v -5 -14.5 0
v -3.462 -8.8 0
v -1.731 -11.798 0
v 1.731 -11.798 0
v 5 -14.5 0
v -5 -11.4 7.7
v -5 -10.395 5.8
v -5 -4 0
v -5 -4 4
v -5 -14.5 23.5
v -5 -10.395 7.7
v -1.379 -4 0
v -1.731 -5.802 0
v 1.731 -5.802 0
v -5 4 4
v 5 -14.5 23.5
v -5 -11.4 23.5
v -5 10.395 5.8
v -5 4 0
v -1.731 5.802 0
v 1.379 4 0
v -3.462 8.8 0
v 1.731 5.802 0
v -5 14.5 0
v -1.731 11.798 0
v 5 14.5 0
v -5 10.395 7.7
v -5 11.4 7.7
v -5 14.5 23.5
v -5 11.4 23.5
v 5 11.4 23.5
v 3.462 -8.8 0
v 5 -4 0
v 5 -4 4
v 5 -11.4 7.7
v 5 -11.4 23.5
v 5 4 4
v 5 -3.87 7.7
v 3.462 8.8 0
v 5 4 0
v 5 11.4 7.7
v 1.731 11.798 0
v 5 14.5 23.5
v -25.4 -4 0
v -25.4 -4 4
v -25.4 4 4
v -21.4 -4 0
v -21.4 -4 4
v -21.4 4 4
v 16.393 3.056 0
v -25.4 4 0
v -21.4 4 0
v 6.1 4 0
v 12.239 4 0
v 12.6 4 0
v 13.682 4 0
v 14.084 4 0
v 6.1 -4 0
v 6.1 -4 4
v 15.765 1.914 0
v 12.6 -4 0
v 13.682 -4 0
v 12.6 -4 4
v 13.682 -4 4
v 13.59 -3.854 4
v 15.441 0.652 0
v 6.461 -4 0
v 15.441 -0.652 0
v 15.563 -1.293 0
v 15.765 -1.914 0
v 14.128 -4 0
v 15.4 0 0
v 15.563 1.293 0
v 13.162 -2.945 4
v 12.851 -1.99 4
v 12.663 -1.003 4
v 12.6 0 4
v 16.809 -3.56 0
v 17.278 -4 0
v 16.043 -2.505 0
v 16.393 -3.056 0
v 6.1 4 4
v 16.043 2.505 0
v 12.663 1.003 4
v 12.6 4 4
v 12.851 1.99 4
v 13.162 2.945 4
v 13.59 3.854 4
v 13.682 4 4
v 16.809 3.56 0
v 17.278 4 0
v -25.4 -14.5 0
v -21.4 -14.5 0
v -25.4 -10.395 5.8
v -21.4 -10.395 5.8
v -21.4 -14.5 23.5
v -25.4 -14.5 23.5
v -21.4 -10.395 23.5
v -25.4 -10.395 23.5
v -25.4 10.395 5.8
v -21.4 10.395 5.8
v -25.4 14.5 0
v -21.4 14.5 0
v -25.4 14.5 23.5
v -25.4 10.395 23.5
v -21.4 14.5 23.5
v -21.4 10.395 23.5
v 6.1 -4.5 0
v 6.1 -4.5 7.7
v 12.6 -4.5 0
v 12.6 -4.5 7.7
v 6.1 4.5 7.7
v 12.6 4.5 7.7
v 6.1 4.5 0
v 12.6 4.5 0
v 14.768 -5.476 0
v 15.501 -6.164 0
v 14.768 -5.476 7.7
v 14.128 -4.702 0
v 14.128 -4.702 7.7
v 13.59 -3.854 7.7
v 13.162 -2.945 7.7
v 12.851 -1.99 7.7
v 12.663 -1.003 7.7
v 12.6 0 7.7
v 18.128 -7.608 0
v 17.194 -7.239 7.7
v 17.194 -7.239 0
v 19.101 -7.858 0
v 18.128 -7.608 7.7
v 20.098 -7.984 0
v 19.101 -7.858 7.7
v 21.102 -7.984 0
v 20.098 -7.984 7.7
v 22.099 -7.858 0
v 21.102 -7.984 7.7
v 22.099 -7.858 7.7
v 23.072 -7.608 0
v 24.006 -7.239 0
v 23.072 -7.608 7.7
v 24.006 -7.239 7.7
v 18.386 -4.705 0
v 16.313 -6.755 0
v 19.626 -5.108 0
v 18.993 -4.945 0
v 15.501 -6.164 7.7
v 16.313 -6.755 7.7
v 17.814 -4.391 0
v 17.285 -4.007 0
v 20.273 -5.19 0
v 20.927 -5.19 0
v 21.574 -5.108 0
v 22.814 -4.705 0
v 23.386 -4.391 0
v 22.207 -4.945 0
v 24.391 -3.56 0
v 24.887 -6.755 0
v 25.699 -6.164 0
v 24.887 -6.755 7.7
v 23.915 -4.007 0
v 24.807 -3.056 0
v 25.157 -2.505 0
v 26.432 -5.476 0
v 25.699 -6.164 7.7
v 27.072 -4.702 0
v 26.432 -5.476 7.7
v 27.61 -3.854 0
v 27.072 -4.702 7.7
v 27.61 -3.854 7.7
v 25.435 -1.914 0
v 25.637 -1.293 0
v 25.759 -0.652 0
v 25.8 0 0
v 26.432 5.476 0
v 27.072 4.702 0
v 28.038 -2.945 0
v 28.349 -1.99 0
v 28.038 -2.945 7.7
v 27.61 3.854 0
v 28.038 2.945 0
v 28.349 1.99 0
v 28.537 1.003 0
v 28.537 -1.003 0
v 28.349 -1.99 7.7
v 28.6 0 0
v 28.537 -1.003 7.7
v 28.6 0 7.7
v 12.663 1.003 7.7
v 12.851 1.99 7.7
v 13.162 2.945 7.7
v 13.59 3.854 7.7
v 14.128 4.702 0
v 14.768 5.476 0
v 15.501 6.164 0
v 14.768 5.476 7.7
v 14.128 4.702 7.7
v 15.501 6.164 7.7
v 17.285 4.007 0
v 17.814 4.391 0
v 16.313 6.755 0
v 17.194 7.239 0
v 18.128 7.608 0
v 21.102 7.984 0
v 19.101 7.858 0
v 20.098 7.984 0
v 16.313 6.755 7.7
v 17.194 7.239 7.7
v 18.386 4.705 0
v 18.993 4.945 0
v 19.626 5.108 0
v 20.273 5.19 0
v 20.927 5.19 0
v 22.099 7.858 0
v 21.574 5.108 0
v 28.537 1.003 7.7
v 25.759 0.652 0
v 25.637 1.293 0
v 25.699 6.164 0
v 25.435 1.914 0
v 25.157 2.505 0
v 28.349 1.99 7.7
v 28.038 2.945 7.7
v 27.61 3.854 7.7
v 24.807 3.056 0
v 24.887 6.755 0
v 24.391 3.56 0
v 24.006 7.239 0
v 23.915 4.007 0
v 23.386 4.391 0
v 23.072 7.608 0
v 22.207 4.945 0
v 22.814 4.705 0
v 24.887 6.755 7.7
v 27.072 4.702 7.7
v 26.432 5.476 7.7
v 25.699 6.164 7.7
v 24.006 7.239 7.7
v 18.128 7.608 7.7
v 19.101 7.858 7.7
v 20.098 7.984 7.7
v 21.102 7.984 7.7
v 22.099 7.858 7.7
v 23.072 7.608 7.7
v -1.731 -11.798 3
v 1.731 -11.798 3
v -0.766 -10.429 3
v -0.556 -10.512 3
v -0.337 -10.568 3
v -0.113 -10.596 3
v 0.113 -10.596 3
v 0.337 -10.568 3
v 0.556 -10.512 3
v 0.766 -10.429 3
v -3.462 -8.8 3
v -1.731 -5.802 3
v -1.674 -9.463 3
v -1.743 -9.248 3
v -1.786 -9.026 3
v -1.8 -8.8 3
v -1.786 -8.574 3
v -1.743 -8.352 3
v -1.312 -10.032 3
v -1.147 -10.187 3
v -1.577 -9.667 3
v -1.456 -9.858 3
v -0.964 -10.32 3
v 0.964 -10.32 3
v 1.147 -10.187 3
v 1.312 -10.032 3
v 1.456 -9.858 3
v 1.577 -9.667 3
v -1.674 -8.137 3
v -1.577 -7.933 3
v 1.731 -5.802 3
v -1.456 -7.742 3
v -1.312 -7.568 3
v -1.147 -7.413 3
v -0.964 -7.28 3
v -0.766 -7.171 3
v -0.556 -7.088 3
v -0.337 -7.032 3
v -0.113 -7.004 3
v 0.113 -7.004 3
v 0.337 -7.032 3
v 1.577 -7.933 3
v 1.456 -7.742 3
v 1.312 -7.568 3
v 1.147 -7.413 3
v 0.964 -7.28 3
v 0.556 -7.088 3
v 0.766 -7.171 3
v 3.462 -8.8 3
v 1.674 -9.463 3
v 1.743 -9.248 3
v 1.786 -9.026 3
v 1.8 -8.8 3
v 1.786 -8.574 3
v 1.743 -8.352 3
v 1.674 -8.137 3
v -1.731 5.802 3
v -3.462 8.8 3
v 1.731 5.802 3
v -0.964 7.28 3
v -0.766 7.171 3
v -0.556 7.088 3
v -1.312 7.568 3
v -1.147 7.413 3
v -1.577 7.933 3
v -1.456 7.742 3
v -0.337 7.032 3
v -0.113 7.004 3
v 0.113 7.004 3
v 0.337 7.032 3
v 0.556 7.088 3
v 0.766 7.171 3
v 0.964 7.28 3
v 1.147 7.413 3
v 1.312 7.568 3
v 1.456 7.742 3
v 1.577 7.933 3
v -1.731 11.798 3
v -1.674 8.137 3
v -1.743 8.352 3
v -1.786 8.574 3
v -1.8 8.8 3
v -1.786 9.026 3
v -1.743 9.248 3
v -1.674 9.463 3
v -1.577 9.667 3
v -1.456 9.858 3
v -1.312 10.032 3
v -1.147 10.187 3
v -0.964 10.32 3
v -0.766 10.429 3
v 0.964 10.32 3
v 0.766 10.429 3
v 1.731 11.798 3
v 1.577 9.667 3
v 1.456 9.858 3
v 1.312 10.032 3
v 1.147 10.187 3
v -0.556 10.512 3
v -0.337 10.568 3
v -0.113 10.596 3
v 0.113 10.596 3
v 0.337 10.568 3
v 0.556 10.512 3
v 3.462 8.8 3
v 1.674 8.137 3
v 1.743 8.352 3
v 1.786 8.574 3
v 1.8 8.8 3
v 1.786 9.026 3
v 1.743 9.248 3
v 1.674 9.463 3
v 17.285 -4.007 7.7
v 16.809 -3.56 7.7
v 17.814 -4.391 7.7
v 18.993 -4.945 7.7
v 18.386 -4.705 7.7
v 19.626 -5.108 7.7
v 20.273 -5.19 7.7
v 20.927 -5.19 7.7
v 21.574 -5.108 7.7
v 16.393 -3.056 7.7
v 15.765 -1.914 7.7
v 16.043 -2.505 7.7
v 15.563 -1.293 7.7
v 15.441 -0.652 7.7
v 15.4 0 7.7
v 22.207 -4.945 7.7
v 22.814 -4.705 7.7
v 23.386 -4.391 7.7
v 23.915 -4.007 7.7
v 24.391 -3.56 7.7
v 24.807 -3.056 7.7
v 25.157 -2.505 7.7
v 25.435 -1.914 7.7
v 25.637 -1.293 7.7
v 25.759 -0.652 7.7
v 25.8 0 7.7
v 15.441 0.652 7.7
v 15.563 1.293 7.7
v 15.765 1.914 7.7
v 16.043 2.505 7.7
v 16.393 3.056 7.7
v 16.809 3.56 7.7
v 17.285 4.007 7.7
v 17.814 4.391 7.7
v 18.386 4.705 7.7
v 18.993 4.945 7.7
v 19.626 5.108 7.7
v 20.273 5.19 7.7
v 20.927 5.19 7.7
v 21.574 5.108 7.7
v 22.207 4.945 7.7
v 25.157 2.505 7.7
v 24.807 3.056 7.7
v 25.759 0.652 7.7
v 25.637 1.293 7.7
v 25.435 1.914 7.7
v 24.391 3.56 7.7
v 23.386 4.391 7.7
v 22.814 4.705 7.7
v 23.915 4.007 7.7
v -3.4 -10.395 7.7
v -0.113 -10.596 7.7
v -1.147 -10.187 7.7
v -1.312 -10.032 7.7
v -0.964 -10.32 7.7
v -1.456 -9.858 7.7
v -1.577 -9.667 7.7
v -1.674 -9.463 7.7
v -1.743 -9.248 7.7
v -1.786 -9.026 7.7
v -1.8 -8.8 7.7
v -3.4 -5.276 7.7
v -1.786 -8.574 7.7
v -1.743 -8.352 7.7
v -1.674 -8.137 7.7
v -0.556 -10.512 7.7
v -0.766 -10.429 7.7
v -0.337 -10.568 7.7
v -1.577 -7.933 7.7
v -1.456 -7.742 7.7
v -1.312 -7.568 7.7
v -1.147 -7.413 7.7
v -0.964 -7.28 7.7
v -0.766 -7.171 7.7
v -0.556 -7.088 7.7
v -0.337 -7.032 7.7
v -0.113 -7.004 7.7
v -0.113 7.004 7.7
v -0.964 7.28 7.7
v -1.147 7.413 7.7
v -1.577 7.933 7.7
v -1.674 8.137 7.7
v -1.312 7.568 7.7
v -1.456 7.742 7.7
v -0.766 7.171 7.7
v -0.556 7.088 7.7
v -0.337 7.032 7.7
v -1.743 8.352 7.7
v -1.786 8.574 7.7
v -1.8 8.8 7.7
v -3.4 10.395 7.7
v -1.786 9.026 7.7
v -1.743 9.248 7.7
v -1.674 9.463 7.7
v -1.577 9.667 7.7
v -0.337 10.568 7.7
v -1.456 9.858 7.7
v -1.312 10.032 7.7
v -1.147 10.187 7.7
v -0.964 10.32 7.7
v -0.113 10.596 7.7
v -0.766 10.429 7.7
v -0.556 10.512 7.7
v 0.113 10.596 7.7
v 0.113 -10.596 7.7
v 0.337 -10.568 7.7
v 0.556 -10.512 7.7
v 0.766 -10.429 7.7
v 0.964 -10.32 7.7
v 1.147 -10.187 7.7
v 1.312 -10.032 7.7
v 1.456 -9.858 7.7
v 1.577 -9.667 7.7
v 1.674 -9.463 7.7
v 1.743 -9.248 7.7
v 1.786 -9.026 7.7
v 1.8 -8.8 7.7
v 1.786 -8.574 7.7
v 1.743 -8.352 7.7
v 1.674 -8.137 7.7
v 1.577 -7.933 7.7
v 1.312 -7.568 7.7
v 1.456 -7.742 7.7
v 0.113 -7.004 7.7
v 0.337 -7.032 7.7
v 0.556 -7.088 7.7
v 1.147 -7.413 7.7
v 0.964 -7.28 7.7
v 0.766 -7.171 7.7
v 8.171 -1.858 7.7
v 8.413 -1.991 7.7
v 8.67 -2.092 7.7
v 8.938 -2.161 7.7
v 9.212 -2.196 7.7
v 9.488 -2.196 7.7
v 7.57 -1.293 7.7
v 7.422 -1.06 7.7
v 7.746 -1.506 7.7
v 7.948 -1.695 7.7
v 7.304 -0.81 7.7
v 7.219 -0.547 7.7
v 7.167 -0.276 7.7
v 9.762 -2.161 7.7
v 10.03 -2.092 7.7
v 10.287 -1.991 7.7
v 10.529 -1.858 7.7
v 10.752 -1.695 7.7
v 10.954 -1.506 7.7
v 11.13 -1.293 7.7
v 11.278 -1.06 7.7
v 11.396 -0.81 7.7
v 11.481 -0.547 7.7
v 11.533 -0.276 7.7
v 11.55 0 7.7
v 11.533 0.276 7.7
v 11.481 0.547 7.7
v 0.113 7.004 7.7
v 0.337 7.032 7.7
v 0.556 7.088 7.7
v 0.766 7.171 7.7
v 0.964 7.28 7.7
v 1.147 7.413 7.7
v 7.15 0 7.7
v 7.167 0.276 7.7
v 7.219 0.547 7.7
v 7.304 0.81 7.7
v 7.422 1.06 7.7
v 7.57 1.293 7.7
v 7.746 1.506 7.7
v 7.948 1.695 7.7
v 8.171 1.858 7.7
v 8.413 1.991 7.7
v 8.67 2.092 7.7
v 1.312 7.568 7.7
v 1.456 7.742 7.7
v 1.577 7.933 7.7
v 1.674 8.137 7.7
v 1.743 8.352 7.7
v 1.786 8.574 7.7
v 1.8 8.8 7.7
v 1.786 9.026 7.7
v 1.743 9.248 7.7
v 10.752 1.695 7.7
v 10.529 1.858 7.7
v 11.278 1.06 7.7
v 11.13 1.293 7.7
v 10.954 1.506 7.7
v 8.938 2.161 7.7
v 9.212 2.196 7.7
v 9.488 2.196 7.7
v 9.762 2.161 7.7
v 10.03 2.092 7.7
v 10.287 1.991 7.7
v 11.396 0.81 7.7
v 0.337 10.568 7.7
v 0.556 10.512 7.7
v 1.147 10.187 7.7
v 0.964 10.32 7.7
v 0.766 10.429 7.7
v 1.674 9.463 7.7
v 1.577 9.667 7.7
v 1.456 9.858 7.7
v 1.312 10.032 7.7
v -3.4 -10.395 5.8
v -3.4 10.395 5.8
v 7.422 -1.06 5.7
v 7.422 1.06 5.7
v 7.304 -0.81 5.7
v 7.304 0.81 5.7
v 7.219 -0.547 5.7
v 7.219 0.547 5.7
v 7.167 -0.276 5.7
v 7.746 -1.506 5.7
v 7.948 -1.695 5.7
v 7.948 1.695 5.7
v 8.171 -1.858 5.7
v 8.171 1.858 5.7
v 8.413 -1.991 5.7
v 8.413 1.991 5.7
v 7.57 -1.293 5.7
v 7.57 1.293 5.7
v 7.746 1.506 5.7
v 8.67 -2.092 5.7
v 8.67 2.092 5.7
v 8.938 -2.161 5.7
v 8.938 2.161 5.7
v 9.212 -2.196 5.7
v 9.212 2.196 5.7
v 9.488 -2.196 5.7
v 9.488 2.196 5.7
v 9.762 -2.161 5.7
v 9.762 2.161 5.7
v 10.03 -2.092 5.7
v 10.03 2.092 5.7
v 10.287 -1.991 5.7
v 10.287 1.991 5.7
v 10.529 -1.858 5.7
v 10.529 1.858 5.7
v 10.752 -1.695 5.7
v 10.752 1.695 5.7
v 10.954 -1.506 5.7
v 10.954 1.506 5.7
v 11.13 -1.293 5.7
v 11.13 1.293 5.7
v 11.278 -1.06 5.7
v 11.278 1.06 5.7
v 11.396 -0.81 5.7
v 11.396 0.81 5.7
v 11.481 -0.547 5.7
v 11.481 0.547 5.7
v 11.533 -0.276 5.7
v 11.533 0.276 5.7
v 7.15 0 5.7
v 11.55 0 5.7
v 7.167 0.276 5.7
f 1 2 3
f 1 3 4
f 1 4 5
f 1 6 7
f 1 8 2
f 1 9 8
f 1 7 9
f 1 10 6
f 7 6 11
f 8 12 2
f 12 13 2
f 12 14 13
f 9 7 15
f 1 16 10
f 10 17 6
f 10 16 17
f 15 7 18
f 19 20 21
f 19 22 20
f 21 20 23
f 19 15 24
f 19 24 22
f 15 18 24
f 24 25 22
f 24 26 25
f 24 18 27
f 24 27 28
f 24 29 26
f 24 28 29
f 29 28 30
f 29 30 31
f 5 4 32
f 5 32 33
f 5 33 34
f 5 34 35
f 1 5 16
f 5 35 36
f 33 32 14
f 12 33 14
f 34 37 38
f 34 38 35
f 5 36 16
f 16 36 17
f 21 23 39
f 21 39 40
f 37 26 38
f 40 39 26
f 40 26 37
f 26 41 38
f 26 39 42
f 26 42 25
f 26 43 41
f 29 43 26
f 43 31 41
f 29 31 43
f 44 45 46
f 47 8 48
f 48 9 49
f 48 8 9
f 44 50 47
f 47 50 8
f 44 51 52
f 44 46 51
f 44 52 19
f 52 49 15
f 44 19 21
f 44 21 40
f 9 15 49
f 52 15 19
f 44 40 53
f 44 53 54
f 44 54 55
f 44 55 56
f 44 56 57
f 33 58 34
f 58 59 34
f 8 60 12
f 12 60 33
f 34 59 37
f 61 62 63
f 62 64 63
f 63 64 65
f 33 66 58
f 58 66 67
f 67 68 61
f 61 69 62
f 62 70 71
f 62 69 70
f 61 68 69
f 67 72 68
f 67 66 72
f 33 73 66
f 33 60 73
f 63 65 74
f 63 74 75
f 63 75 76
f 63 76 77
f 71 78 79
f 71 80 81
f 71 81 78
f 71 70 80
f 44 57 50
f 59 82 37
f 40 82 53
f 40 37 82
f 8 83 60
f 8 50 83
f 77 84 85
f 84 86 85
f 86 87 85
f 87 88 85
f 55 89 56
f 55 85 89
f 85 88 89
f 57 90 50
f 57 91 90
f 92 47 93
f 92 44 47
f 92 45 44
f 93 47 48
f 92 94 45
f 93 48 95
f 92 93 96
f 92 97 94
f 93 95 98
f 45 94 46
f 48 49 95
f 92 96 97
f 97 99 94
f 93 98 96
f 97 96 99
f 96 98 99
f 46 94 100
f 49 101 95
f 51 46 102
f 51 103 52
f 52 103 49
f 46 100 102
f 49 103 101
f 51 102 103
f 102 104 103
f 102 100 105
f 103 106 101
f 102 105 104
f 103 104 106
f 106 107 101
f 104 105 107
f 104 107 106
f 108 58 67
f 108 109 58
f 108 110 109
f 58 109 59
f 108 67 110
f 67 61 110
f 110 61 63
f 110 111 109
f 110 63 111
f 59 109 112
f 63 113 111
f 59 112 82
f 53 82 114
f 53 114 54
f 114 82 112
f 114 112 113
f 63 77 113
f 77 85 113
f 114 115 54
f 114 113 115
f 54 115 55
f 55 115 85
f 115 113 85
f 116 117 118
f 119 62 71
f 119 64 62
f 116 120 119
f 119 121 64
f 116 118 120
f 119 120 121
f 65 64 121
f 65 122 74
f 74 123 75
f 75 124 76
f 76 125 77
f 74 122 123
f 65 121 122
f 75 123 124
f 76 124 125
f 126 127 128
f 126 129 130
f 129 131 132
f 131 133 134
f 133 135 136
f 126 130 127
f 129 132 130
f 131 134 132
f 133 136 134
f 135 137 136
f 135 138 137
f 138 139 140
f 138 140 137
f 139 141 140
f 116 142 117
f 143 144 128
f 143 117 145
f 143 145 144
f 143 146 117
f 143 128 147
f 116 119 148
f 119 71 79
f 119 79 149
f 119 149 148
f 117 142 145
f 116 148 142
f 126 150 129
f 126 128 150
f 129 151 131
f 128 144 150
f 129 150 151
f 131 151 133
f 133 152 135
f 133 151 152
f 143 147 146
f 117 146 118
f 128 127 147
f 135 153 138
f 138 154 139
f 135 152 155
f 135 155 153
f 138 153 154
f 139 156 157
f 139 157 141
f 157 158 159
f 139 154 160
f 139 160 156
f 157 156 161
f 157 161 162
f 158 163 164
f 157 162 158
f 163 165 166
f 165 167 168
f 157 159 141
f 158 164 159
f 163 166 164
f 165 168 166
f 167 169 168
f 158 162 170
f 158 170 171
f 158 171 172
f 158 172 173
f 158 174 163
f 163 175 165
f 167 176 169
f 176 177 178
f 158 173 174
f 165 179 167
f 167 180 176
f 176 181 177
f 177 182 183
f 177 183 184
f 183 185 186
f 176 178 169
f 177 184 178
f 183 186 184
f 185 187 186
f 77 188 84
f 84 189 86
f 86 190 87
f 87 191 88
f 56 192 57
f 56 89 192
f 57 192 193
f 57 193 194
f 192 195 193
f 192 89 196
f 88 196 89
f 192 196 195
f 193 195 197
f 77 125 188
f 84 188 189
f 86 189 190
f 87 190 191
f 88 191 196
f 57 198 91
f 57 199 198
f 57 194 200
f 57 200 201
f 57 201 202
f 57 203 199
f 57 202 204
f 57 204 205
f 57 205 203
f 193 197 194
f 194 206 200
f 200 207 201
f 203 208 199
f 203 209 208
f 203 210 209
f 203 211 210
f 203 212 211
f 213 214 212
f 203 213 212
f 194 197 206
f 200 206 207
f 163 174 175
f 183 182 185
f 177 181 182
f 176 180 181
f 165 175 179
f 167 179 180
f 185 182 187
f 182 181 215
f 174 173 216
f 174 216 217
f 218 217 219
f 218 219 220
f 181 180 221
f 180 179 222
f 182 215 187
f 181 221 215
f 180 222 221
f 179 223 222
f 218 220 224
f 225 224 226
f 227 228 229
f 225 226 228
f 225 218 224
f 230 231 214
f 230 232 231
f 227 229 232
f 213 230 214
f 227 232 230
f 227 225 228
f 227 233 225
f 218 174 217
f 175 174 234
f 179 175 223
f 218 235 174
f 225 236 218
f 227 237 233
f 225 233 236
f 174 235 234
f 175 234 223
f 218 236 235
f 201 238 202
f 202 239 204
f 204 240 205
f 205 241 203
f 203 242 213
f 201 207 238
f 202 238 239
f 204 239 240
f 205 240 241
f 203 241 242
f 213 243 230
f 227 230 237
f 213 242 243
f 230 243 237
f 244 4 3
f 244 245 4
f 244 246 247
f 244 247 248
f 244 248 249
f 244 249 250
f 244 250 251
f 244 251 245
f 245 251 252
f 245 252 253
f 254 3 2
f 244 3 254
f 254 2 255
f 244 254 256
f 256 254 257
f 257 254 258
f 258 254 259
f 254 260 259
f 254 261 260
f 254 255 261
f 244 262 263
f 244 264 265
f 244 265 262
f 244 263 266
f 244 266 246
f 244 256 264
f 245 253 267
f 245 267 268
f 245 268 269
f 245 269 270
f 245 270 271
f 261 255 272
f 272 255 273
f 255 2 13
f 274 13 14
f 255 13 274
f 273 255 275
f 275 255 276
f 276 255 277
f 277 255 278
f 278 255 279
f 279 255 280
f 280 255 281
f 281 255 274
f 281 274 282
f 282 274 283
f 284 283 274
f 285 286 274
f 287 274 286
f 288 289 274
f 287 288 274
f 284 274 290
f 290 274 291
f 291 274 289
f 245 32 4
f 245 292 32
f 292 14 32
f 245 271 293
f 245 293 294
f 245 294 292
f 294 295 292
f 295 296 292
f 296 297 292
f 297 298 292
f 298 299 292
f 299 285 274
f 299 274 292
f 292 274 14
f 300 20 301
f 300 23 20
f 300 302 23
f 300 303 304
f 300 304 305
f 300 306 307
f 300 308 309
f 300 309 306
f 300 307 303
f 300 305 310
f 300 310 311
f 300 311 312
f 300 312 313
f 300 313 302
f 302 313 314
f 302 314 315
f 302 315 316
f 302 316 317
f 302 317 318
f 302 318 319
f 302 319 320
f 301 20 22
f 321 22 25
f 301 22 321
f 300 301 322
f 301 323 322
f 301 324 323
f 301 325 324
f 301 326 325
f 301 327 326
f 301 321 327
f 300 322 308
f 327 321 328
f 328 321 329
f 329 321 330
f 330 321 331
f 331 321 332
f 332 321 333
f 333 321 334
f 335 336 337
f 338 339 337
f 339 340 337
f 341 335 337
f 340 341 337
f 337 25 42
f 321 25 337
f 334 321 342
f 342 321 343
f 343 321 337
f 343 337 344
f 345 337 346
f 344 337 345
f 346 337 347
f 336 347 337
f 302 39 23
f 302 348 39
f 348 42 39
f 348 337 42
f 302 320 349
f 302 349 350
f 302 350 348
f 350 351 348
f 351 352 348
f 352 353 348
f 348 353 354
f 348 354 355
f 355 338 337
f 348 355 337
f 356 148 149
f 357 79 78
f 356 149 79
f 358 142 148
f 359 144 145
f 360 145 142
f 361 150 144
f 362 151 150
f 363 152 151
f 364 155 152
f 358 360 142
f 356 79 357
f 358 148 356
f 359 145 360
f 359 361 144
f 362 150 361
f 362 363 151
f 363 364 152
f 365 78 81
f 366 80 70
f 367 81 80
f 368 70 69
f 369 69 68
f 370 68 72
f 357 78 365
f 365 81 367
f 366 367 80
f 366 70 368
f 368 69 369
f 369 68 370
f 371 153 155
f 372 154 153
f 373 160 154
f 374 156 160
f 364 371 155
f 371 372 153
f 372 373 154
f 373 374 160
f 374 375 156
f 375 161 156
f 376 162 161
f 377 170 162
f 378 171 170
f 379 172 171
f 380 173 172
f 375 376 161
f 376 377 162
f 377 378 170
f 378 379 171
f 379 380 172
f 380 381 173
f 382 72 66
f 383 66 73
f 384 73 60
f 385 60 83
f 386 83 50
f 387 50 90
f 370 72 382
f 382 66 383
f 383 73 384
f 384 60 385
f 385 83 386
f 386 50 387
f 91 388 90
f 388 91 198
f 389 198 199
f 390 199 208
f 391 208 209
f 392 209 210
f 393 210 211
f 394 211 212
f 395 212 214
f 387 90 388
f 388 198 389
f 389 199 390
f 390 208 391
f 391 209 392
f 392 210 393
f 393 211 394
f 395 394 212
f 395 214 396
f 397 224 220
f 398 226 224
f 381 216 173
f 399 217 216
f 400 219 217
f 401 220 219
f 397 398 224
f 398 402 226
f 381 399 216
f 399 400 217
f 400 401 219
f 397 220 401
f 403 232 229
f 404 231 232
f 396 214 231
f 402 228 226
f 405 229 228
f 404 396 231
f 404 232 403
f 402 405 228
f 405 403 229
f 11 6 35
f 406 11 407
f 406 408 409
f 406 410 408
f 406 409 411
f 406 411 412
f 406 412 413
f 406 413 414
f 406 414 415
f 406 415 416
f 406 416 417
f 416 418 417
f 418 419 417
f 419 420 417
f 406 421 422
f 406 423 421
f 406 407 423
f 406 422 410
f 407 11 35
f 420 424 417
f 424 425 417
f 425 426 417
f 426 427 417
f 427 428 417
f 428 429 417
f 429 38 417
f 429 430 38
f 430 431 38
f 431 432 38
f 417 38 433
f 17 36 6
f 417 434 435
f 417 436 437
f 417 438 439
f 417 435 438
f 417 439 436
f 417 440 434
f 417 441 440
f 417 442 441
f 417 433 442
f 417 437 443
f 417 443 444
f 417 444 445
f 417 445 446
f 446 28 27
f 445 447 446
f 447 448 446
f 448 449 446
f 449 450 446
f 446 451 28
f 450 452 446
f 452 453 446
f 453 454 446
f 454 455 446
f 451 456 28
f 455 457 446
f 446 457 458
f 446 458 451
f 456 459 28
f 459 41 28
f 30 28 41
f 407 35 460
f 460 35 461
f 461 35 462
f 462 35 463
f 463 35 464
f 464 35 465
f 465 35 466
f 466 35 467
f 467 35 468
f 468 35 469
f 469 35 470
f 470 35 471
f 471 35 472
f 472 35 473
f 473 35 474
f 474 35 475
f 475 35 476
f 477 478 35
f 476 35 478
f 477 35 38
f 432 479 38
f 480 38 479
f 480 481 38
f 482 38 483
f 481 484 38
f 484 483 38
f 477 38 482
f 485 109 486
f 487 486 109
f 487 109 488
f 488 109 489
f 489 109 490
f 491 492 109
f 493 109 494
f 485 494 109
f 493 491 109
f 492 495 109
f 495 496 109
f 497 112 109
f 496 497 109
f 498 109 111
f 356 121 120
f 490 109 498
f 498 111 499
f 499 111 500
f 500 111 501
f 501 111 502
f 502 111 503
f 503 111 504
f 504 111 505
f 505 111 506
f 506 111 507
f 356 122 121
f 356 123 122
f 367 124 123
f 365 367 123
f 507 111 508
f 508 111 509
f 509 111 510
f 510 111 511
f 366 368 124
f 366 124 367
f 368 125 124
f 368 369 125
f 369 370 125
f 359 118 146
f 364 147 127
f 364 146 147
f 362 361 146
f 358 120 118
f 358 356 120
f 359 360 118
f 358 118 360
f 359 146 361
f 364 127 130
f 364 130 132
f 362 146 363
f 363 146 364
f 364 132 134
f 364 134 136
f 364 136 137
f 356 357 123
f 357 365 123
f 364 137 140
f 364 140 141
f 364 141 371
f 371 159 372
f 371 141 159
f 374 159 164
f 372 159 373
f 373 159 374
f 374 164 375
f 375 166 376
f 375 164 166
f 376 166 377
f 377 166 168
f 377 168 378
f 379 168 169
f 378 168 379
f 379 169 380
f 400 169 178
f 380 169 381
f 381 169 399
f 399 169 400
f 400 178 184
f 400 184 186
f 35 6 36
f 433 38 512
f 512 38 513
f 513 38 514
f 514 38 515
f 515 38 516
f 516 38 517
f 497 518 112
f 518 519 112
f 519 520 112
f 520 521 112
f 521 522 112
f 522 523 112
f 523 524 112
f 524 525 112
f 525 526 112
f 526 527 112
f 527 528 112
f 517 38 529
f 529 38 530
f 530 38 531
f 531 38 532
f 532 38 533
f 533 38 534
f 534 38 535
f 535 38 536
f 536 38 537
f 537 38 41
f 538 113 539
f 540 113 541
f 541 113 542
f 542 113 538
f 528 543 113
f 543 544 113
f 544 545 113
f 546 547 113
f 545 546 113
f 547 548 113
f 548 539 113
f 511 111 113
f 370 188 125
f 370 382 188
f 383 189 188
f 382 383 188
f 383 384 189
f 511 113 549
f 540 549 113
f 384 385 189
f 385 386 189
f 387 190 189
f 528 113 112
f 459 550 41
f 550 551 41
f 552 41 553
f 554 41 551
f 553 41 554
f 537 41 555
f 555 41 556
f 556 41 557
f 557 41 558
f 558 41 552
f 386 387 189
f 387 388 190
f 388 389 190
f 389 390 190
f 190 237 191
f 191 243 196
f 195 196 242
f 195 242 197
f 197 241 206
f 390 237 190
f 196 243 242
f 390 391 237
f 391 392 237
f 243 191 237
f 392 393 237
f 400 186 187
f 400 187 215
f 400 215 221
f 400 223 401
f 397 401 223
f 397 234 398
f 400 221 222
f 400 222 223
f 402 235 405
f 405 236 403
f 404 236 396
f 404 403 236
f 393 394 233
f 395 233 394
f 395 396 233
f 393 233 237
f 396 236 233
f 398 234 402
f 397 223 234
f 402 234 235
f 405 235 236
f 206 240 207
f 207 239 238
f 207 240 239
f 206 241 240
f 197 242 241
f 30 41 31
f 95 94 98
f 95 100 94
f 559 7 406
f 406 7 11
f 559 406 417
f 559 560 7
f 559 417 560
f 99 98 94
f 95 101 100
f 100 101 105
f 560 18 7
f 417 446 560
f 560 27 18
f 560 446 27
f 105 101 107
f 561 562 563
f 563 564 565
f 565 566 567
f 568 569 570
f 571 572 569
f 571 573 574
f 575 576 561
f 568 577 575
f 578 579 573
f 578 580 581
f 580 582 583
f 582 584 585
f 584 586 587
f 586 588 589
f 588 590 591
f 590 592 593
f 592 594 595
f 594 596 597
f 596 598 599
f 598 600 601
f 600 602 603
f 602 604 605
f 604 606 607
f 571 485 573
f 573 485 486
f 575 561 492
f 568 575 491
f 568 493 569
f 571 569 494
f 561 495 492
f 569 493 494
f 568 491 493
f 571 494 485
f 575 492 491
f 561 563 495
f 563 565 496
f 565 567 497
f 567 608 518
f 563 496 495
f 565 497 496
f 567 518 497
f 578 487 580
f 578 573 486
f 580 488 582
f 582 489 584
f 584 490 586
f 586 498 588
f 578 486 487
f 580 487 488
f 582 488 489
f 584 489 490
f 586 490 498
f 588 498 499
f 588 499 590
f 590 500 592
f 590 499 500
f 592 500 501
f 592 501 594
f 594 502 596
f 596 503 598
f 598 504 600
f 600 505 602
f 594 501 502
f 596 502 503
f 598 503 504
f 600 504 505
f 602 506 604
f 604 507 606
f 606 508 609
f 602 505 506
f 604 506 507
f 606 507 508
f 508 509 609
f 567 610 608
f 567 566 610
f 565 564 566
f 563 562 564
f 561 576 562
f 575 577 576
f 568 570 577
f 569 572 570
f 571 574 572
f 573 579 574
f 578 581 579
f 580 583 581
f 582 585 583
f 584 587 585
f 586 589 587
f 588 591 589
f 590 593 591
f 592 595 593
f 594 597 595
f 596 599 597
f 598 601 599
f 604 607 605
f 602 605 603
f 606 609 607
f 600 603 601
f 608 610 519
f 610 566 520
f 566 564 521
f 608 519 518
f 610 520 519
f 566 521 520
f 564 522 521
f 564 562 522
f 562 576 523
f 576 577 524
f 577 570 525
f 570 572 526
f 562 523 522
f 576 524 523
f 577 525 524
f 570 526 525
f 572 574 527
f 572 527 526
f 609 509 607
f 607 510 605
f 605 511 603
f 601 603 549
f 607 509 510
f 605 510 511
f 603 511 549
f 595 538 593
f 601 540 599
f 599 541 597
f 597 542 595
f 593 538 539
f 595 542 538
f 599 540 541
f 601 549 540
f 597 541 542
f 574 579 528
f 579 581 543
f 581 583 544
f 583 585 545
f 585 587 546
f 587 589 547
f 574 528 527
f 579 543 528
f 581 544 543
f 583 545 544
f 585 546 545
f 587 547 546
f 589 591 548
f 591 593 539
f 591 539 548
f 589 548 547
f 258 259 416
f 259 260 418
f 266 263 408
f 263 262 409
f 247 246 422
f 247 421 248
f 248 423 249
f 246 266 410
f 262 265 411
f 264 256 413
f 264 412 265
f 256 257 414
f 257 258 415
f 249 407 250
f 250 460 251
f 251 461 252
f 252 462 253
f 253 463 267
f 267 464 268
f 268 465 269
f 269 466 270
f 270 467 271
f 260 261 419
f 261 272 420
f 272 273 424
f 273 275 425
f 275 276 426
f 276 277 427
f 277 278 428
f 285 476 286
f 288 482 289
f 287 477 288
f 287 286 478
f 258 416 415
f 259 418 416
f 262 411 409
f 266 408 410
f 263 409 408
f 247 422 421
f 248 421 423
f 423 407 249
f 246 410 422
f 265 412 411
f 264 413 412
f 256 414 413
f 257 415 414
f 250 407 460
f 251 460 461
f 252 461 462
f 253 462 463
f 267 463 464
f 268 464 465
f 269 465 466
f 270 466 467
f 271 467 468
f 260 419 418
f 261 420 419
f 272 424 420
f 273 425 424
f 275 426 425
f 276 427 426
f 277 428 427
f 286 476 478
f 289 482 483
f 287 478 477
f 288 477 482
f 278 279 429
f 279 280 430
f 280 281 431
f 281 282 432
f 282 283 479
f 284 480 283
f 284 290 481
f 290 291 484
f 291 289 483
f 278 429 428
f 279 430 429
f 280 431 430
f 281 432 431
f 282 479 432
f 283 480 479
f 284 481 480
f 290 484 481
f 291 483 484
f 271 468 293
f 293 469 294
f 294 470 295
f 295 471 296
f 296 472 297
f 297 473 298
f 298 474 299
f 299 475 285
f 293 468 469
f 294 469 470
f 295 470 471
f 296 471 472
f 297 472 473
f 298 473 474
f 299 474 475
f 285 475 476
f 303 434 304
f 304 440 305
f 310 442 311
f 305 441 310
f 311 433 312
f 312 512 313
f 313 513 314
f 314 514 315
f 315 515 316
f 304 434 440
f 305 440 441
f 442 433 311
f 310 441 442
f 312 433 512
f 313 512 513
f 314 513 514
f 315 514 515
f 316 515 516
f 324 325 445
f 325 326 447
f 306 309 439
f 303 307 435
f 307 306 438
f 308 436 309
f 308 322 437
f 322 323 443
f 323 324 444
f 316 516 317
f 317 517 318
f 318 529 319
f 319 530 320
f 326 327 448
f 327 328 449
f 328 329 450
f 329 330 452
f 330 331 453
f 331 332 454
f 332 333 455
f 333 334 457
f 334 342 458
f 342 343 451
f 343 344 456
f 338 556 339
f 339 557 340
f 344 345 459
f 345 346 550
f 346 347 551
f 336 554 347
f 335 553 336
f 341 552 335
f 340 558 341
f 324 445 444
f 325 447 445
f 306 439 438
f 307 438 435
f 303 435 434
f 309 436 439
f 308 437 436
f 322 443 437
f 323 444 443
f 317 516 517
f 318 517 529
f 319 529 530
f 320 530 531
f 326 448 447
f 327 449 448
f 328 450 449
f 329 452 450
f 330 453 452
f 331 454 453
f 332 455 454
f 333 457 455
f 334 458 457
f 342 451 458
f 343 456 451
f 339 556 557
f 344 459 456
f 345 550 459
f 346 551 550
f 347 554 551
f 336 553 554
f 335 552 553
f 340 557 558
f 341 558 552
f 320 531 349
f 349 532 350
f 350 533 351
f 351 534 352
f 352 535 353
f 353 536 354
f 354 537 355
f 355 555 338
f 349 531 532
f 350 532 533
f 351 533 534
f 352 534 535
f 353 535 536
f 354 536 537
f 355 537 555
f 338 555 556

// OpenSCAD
$fn = 50;

difference() {
	union() {
		translate(v = [20.6, 0, 23.5]) {
			rotate(a = [0, 0, 0]) {
				difference() {
					union() {
						translate(v = [-25.6, -14.5, -23.5]) {
							cube(size = [10.0, 29, 23.5]);
						}
						translate(v = [-46.0, -4.0, -23.5]) {
							cube(size = [47, 8, 4.0]);
						}
						translate(v = [-46.0, -14.5, -23.5]) {
							cube(size = [4, 29, 23.5]);
						}
						translate(v = [-14.5, -4.5, -23.5]) {
							cube(size = [6.5, 9, 8.5]);
						}
						translate(v = [0, 0, -23.5]) {
							cylinder(h = 8.5, r = 8);
						}
					}
					union() {
						translate(v = [-20.6, -8.8, -23.5]) {
							rotate(a = [0, 0, 0]) {
								difference() {
									union() {
										linear_extrude(height = 3) {
											polygon(points = [[3.4619999999999997, 0.0], [1.7310000000000003, 2.9981799479017264], [-1.7309999999999992, 2.9981799479017264], [-3.4619999999999997, 4.2397272186481365e-16], [-1.7310000000000014, -2.998179947901726], [1.7309999999999977, -2.9981799479017277]]);
										}
									}
									union();
								}
							}
						}
						translate(v = [-20.6, 8.8, -23.5]) {
							rotate(a = [0, 0, 0]) {
								difference() {
									union() {
										linear_extrude(height = 3) {
											polygon(points = [[3.4619999999999997, 0.0], [1.7310000000000003, 2.9981799479017264], [-1.7309999999999992, 2.9981799479017264], [-3.4619999999999997, 4.2397272186481365e-16], [-1.7310000000000014, -2.998179947901726], [1.7309999999999977, -2.9981799479017277]]);
										}
									}
									union();
								}
							}
						}
						translate(v = [0, 0, -24]) {
							cylinder(h = 12, r = 5.2);
						}
						translate(v = [-37.0, -11.399999999999999, -15.8]) {
							cube(size = [48.4, 22.799999999999997, 16.8]);
						}
						translate(v = [-58.0, -10.395, -17.7]) {
							cube(size = [34.0, 20.79, 18.7]);
						}
						translate(v = [10.0, -2.7, -7.900000000000001]) {
							cube(size = [6.199999999999999, 5.4, 8.900000000000002]);
						}
						translate(v = [-11.25, 0, -17.8]) {
							cylinder(h = 4, r = 2.2);
						}
						translate(v = [-20.6, -8.8, -24]) {
							cylinder(h = 25, r = 1.8);
						}
						translate(v = [-20.6, 8.8, -24]) {
							cylinder(h = 25, r = 1.8);
						}
					}
				}
			}
		}
	}
	union();
}
